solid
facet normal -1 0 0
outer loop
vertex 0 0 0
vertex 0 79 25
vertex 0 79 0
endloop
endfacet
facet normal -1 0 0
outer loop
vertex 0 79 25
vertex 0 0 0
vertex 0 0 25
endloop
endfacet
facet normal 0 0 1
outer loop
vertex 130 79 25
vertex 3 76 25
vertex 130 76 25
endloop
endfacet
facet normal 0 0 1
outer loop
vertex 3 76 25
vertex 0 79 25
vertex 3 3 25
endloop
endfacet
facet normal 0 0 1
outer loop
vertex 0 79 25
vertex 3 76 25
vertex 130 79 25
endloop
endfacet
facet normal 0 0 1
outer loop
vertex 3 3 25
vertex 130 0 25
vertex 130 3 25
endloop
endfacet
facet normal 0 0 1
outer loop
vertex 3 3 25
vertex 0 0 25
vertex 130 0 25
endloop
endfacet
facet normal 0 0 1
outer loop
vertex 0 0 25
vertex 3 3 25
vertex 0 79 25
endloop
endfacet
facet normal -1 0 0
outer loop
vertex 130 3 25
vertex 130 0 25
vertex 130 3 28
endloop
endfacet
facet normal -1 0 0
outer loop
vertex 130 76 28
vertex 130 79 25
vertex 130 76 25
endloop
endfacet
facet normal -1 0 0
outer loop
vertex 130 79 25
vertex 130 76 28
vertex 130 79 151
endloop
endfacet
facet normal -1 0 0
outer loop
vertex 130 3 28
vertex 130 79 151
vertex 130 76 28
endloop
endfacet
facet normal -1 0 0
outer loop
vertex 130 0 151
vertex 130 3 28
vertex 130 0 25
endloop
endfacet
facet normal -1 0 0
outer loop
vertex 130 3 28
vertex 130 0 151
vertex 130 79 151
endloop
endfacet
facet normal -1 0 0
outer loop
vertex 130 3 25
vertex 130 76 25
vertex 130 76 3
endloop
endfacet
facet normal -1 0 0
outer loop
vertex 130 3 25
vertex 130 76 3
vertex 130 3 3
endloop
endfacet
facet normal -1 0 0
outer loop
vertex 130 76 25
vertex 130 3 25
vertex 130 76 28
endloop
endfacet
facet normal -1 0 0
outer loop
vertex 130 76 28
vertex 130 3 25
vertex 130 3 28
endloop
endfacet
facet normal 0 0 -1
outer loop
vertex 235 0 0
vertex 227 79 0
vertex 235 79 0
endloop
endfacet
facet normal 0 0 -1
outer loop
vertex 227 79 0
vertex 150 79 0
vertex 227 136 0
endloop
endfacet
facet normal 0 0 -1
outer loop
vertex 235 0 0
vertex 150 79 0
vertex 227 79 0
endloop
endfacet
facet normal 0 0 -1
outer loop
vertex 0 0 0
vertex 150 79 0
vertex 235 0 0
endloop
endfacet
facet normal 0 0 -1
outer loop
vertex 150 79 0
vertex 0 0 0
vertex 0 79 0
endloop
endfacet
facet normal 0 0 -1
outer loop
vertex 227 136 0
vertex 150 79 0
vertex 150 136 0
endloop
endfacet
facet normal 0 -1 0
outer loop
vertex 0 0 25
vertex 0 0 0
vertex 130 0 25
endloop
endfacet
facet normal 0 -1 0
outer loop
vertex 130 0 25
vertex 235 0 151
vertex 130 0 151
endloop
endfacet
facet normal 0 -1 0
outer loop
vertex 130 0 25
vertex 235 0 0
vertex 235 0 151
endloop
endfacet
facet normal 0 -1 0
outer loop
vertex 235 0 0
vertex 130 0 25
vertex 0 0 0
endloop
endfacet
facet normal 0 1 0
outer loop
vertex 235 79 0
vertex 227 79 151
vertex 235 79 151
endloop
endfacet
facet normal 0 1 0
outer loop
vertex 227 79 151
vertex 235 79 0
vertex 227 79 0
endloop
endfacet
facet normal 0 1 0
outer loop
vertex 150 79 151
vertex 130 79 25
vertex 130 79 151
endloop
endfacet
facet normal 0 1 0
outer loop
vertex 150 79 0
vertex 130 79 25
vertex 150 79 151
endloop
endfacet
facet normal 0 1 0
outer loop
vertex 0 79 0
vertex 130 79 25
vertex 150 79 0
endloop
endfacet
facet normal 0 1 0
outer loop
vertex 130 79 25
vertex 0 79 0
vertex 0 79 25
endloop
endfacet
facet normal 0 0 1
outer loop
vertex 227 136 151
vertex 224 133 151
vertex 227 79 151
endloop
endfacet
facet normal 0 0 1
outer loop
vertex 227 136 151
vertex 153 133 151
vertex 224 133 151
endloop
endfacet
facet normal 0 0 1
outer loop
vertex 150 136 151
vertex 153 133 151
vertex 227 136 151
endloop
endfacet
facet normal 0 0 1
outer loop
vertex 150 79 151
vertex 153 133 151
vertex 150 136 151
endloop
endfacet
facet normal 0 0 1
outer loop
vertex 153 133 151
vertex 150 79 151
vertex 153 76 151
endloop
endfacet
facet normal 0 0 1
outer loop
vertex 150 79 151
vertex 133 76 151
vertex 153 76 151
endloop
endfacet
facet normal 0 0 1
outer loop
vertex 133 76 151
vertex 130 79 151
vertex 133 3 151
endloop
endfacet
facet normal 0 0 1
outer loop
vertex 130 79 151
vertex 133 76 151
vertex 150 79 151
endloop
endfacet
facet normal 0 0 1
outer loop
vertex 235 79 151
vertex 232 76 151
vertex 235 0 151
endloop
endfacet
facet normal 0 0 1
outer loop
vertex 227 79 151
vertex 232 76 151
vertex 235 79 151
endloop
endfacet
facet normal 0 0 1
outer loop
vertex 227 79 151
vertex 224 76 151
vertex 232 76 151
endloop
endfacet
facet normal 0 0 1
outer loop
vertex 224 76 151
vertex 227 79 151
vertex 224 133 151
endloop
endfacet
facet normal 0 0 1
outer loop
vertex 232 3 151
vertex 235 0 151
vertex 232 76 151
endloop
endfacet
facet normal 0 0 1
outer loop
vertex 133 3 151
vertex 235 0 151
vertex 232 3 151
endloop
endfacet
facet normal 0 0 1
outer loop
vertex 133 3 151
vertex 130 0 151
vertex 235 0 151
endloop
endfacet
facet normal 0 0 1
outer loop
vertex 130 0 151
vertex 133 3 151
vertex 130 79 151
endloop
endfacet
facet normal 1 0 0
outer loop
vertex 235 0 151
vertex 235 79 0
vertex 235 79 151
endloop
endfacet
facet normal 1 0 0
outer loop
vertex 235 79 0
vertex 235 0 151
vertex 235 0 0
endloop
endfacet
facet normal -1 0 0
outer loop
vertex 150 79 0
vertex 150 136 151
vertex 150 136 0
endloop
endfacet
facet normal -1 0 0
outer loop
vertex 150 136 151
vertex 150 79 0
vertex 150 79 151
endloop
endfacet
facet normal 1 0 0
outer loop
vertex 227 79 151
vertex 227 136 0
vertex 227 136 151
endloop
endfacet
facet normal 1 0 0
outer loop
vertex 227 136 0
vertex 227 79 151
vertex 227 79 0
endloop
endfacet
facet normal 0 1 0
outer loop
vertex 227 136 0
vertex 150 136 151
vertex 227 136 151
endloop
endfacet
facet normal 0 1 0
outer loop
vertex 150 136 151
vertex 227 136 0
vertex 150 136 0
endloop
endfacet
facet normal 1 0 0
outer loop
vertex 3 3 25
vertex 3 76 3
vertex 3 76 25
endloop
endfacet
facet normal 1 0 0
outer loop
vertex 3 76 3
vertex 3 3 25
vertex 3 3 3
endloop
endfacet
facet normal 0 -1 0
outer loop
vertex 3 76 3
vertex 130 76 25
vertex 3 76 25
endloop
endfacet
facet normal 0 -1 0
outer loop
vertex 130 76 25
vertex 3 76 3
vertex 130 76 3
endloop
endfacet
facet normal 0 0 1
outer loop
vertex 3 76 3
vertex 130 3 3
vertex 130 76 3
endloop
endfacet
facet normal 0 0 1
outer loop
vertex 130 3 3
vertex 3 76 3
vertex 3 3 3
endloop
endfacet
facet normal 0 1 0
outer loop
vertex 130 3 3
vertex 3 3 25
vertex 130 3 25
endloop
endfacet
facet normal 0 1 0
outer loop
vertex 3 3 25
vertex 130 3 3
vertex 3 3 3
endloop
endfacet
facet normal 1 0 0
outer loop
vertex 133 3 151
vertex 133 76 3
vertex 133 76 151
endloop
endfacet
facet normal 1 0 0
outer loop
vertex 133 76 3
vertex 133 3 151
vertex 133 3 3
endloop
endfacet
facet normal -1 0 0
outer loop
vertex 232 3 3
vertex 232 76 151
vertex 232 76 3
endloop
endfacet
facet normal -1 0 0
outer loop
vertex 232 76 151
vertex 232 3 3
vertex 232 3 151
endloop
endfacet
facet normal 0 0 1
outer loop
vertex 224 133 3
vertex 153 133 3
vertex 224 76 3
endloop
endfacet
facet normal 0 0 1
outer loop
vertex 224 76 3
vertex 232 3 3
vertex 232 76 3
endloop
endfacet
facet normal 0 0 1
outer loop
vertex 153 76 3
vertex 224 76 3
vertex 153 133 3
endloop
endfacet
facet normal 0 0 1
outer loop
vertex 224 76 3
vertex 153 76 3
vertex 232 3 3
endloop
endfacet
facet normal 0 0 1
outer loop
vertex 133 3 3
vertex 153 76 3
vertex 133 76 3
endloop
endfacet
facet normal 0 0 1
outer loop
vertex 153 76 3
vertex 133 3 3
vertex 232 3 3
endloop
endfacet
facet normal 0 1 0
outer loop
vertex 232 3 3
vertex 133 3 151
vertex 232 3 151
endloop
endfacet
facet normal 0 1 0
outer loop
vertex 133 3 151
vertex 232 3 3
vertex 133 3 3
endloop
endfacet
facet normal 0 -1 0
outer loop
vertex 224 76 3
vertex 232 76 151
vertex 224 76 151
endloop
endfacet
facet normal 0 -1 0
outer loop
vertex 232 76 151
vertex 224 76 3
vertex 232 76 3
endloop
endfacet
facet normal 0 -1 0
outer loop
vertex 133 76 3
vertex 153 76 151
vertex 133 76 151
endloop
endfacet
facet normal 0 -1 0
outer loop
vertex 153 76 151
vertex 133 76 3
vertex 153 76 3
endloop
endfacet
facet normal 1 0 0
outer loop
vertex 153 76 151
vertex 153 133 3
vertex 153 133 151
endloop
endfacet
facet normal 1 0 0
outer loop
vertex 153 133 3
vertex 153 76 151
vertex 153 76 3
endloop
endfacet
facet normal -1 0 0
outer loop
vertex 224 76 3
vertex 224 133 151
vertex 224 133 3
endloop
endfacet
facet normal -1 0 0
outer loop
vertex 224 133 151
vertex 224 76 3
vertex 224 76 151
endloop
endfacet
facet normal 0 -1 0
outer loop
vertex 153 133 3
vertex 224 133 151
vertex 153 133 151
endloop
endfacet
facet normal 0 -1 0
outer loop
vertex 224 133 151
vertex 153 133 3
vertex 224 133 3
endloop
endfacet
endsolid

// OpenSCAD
$fn=50;

difference() {
    union() {
        cube([130,79,25]);
        translate([130,0,0])cube([105,79,151]);
        translate([150,76,0])cube([77,60,151]);
    }
    translate([3,3,3])cube([127,73,25]);
    translate([133,3,3])cube([99,73,148]);
    translate([153,76,3])cube([71,57,148]);
}
